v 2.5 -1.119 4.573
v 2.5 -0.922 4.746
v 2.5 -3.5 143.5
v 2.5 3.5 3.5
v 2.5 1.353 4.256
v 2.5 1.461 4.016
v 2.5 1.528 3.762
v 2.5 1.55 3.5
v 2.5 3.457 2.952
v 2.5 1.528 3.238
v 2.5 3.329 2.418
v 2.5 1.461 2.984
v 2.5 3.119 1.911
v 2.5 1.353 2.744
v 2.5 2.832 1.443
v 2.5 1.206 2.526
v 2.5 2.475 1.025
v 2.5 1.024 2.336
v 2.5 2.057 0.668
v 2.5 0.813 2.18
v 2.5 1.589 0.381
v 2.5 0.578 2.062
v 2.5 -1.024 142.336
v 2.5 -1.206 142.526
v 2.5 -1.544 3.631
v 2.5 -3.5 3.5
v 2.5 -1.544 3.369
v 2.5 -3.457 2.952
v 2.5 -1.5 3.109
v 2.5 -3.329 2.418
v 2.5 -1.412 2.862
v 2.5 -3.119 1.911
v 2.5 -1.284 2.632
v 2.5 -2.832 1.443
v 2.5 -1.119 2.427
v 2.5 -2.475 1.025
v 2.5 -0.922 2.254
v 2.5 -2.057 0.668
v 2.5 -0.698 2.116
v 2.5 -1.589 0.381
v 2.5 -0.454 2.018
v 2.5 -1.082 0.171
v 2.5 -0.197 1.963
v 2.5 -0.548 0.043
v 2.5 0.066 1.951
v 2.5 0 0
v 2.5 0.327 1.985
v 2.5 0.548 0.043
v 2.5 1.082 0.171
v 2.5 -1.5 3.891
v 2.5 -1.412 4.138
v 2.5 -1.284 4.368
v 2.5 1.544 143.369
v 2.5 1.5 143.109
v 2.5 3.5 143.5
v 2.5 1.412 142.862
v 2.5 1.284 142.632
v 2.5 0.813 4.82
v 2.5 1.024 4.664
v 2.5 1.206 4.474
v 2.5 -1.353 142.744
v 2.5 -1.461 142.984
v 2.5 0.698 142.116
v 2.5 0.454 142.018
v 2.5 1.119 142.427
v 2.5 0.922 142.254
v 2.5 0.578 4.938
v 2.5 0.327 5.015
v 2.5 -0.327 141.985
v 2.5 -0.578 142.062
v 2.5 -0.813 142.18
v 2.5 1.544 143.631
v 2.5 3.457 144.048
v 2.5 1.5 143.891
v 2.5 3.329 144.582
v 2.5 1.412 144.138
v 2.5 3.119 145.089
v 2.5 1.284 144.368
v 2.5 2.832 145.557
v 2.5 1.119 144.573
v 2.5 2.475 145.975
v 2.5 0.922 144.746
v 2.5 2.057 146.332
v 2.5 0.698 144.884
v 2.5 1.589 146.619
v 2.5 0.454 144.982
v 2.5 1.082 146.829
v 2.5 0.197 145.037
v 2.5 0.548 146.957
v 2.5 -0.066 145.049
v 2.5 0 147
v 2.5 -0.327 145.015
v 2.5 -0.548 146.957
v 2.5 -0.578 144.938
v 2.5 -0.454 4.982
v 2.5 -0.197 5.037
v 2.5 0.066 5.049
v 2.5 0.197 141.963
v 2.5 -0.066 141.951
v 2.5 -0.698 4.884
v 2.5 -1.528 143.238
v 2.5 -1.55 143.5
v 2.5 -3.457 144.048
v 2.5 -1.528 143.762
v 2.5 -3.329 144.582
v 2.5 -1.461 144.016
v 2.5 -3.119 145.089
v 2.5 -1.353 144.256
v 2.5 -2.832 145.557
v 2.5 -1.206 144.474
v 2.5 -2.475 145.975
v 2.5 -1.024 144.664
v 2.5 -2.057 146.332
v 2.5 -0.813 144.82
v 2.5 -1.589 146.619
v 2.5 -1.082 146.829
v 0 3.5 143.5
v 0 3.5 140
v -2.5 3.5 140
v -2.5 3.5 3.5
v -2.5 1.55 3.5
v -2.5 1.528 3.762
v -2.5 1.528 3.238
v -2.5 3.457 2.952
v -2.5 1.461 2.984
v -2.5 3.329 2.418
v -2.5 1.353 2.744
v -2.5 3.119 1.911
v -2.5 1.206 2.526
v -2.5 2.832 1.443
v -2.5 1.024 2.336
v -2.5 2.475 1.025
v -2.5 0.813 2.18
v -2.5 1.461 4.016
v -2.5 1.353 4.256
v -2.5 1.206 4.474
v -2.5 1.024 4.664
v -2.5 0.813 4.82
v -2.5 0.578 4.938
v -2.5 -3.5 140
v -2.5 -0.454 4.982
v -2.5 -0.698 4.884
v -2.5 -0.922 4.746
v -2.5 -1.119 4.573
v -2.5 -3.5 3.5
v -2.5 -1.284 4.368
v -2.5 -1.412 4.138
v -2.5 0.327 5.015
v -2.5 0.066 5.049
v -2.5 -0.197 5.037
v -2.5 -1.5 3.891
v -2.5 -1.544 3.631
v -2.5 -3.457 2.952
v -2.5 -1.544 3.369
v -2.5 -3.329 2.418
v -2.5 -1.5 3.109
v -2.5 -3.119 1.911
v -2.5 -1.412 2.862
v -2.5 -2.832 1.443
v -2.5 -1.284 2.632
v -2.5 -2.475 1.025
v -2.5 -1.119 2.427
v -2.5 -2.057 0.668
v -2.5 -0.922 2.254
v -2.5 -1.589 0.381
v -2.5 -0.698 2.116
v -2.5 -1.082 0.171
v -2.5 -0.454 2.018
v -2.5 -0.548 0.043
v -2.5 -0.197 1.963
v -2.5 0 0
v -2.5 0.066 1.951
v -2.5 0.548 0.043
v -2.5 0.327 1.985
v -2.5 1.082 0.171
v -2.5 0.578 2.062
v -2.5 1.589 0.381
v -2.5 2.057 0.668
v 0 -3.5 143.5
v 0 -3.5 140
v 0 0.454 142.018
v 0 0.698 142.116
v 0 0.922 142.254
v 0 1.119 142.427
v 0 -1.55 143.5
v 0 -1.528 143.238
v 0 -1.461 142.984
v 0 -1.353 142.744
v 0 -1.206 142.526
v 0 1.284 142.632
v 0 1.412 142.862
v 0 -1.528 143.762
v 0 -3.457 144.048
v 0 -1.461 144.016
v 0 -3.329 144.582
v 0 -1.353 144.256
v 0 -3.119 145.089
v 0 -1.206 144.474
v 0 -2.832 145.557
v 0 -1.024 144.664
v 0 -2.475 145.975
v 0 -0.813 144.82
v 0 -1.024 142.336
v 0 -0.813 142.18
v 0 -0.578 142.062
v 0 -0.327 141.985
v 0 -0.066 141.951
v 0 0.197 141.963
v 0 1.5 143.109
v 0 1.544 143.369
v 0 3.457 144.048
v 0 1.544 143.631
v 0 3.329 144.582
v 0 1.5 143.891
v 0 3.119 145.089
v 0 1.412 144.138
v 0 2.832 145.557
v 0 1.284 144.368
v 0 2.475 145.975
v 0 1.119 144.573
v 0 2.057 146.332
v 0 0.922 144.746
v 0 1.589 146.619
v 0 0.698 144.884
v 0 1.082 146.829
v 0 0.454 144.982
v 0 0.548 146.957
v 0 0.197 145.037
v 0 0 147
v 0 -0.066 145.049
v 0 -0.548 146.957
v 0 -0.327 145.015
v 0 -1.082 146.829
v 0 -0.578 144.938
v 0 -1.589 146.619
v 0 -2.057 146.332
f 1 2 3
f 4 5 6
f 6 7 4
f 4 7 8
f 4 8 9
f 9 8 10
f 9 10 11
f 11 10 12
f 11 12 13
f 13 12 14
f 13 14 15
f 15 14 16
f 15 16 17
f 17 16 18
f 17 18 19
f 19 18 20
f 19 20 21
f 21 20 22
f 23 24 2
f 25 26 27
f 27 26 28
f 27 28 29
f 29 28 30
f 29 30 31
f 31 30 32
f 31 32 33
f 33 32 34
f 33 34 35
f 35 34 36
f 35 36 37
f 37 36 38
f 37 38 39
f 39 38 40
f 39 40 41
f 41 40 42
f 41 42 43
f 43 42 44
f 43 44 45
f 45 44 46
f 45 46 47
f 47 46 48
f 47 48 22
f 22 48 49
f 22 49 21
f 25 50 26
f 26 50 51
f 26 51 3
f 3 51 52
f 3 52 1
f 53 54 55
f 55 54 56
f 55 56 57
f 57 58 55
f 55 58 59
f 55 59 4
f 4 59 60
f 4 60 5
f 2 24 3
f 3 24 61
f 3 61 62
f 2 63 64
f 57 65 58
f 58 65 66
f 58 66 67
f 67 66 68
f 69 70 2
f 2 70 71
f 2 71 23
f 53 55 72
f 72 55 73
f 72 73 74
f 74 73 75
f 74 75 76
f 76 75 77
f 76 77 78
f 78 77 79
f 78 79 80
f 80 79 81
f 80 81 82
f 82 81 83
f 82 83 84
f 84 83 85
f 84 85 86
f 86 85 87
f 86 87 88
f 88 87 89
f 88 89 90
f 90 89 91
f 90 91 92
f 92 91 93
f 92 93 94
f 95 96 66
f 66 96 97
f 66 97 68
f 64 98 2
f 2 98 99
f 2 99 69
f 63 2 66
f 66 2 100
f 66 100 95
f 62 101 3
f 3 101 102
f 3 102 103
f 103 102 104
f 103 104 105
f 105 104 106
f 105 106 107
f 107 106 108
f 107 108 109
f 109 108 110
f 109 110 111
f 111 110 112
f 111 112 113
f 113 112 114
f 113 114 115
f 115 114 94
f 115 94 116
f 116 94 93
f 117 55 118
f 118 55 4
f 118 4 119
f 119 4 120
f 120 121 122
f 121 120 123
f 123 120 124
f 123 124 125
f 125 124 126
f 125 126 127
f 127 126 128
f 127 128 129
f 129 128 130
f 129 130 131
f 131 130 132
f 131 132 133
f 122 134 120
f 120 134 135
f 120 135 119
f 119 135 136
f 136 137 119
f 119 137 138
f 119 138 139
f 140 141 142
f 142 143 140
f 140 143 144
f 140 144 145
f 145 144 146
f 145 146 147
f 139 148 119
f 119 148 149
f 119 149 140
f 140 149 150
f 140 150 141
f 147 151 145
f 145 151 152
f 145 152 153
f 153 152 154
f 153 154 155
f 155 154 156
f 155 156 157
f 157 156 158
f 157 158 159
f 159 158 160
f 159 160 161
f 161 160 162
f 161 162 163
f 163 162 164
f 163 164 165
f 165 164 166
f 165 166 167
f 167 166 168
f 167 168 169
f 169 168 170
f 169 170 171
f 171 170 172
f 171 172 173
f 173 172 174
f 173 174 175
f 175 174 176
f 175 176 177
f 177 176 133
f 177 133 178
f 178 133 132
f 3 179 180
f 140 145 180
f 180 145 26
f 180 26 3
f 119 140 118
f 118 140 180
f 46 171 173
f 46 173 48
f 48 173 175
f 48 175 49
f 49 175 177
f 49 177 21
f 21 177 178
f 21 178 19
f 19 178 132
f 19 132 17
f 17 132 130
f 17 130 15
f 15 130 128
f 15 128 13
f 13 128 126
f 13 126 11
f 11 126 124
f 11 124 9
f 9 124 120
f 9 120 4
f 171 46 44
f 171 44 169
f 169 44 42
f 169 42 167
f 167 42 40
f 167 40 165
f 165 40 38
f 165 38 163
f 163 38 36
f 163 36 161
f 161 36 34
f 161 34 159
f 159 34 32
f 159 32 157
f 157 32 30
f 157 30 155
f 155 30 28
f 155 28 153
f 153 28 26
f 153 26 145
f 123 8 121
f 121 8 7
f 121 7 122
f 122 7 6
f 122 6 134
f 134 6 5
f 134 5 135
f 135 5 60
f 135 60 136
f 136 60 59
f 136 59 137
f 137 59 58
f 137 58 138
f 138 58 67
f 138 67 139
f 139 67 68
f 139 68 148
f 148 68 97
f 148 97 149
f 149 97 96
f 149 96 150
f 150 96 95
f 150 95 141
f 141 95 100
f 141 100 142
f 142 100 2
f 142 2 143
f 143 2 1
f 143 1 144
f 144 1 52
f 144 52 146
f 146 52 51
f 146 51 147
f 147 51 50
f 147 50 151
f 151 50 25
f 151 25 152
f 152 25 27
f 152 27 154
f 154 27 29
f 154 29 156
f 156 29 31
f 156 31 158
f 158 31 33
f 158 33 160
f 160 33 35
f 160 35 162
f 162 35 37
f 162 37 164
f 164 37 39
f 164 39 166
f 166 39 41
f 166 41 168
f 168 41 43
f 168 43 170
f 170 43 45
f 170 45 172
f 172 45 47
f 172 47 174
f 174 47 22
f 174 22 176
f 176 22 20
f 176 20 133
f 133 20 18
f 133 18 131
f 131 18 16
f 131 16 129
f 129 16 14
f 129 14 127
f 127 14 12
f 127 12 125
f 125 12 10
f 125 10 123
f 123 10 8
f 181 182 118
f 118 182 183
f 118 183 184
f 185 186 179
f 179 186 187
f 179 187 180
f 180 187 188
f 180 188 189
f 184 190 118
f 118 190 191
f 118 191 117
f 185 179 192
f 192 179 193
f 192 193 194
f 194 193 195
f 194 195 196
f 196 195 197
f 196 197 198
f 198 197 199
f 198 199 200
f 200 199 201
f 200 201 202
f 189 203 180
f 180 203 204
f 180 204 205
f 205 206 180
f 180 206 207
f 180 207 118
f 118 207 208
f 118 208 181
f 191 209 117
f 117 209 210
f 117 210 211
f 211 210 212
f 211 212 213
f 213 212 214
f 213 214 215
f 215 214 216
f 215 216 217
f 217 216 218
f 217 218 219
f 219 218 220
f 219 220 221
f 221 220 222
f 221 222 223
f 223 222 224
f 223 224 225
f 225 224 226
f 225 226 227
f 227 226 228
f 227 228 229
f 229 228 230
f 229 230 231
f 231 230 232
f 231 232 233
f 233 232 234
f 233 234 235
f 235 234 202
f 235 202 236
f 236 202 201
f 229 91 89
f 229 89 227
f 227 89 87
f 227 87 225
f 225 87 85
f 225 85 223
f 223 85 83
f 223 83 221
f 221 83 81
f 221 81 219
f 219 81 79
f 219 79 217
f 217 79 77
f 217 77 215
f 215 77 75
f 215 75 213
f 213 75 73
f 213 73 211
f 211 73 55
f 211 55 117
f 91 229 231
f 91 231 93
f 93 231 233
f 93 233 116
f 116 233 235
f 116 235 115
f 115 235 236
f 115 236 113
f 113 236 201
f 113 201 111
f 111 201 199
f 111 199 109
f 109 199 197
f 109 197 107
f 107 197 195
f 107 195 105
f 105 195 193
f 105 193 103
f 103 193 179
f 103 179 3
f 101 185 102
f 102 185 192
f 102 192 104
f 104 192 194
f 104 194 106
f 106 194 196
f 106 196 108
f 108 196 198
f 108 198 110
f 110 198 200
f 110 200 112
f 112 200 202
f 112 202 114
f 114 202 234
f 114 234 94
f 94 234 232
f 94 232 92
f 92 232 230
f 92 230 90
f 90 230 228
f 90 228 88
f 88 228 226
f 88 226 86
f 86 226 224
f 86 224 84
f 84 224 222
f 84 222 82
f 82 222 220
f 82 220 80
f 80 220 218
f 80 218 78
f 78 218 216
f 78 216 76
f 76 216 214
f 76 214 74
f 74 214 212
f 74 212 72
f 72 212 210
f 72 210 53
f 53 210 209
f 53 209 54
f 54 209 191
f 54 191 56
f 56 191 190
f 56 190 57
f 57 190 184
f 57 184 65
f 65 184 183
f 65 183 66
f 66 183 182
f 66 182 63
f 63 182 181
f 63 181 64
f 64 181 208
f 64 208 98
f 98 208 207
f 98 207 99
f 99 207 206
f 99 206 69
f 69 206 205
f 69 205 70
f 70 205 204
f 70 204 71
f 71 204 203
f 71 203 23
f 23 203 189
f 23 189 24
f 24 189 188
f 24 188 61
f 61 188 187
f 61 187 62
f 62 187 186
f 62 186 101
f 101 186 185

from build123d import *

# Parameters (mm, degrees)
SKETCH_1_W          = 5
SKETCH_1_H          = 7
EXTRUDE_2_DEPTH     = 140
FILLET_1_R          = 3.5
SKETCH_3_R          = 1.55
CUT_EXTRUDE_1_DEPTH = 141.132972565
SKETCH_4_W          = 2.5
SKETCH_4_H          = 7
EXTRUDE_3_DEPTH     = 7
FILLET_2_R          = 3.5
SKETCH_5_R          = 1.55
CUT_EXTRUDE_2_DEPTH = 148.062911708


with BuildPart() as part:
    # 草图1 → 凸台-拉伸2 (new body)
    with BuildSketch(Plane.XY):
        Rectangle(SKETCH_1_W, SKETCH_1_H)
    extrude(amount=EXTRUDE_2_DEPTH)

    # 圆角1
    fillet_1_edges = [part.edges().sort_by_distance(p)[0] for p in [
        (0, -3.5, 0),
        (0, 3.5, 0),
    ]]
    fillet(fillet_1_edges, radius=FILLET_1_R - 0.0001)  # a hair under: the kernel refuses the full size

    # 草图3 → 切除-拉伸1 (cut, through all)
    with BuildSketch(Plane(origin=(2.5, 0, 0), x_dir=(0, 0, -1), z_dir=(1, 0, 0))):
        with Locations(Location((-3.5, 0, 0), (0, 0, 90))):
            Circle(SKETCH_3_R)
    extrude(amount=-CUT_EXTRUDE_1_DEPTH, mode=Mode.SUBTRACT)

    # 草图4 → 凸台-拉伸3 (add)
    with BuildSketch(Plane.XY.offset(140)):
        with Locations((1.25, 0)):
            Rectangle(SKETCH_4_W, SKETCH_4_H)
    extrude(amount=EXTRUDE_3_DEPTH)

    # 圆角2
    fillet_2_edges = [part.edges().sort_by_distance(p)[0] for p in [
        (1.25, -3.5, 147),
        (1.25, 3.5, 147),
    ]]
    fillet(fillet_2_edges, radius=FILLET_2_R - 0.0001)  # a hair under: the kernel refuses the full size

    # 草图5 → 切除-拉伸2 (cut, through all)
    with BuildSketch(Plane.ZY):
        with Locations(Location((143.5, 0, 0), (0, 0, 270))):
            Circle(SKETCH_5_R)
    extrude(amount=-CUT_EXTRUDE_2_DEPTH, mode=Mode.SUBTRACT)


solid = part.part
